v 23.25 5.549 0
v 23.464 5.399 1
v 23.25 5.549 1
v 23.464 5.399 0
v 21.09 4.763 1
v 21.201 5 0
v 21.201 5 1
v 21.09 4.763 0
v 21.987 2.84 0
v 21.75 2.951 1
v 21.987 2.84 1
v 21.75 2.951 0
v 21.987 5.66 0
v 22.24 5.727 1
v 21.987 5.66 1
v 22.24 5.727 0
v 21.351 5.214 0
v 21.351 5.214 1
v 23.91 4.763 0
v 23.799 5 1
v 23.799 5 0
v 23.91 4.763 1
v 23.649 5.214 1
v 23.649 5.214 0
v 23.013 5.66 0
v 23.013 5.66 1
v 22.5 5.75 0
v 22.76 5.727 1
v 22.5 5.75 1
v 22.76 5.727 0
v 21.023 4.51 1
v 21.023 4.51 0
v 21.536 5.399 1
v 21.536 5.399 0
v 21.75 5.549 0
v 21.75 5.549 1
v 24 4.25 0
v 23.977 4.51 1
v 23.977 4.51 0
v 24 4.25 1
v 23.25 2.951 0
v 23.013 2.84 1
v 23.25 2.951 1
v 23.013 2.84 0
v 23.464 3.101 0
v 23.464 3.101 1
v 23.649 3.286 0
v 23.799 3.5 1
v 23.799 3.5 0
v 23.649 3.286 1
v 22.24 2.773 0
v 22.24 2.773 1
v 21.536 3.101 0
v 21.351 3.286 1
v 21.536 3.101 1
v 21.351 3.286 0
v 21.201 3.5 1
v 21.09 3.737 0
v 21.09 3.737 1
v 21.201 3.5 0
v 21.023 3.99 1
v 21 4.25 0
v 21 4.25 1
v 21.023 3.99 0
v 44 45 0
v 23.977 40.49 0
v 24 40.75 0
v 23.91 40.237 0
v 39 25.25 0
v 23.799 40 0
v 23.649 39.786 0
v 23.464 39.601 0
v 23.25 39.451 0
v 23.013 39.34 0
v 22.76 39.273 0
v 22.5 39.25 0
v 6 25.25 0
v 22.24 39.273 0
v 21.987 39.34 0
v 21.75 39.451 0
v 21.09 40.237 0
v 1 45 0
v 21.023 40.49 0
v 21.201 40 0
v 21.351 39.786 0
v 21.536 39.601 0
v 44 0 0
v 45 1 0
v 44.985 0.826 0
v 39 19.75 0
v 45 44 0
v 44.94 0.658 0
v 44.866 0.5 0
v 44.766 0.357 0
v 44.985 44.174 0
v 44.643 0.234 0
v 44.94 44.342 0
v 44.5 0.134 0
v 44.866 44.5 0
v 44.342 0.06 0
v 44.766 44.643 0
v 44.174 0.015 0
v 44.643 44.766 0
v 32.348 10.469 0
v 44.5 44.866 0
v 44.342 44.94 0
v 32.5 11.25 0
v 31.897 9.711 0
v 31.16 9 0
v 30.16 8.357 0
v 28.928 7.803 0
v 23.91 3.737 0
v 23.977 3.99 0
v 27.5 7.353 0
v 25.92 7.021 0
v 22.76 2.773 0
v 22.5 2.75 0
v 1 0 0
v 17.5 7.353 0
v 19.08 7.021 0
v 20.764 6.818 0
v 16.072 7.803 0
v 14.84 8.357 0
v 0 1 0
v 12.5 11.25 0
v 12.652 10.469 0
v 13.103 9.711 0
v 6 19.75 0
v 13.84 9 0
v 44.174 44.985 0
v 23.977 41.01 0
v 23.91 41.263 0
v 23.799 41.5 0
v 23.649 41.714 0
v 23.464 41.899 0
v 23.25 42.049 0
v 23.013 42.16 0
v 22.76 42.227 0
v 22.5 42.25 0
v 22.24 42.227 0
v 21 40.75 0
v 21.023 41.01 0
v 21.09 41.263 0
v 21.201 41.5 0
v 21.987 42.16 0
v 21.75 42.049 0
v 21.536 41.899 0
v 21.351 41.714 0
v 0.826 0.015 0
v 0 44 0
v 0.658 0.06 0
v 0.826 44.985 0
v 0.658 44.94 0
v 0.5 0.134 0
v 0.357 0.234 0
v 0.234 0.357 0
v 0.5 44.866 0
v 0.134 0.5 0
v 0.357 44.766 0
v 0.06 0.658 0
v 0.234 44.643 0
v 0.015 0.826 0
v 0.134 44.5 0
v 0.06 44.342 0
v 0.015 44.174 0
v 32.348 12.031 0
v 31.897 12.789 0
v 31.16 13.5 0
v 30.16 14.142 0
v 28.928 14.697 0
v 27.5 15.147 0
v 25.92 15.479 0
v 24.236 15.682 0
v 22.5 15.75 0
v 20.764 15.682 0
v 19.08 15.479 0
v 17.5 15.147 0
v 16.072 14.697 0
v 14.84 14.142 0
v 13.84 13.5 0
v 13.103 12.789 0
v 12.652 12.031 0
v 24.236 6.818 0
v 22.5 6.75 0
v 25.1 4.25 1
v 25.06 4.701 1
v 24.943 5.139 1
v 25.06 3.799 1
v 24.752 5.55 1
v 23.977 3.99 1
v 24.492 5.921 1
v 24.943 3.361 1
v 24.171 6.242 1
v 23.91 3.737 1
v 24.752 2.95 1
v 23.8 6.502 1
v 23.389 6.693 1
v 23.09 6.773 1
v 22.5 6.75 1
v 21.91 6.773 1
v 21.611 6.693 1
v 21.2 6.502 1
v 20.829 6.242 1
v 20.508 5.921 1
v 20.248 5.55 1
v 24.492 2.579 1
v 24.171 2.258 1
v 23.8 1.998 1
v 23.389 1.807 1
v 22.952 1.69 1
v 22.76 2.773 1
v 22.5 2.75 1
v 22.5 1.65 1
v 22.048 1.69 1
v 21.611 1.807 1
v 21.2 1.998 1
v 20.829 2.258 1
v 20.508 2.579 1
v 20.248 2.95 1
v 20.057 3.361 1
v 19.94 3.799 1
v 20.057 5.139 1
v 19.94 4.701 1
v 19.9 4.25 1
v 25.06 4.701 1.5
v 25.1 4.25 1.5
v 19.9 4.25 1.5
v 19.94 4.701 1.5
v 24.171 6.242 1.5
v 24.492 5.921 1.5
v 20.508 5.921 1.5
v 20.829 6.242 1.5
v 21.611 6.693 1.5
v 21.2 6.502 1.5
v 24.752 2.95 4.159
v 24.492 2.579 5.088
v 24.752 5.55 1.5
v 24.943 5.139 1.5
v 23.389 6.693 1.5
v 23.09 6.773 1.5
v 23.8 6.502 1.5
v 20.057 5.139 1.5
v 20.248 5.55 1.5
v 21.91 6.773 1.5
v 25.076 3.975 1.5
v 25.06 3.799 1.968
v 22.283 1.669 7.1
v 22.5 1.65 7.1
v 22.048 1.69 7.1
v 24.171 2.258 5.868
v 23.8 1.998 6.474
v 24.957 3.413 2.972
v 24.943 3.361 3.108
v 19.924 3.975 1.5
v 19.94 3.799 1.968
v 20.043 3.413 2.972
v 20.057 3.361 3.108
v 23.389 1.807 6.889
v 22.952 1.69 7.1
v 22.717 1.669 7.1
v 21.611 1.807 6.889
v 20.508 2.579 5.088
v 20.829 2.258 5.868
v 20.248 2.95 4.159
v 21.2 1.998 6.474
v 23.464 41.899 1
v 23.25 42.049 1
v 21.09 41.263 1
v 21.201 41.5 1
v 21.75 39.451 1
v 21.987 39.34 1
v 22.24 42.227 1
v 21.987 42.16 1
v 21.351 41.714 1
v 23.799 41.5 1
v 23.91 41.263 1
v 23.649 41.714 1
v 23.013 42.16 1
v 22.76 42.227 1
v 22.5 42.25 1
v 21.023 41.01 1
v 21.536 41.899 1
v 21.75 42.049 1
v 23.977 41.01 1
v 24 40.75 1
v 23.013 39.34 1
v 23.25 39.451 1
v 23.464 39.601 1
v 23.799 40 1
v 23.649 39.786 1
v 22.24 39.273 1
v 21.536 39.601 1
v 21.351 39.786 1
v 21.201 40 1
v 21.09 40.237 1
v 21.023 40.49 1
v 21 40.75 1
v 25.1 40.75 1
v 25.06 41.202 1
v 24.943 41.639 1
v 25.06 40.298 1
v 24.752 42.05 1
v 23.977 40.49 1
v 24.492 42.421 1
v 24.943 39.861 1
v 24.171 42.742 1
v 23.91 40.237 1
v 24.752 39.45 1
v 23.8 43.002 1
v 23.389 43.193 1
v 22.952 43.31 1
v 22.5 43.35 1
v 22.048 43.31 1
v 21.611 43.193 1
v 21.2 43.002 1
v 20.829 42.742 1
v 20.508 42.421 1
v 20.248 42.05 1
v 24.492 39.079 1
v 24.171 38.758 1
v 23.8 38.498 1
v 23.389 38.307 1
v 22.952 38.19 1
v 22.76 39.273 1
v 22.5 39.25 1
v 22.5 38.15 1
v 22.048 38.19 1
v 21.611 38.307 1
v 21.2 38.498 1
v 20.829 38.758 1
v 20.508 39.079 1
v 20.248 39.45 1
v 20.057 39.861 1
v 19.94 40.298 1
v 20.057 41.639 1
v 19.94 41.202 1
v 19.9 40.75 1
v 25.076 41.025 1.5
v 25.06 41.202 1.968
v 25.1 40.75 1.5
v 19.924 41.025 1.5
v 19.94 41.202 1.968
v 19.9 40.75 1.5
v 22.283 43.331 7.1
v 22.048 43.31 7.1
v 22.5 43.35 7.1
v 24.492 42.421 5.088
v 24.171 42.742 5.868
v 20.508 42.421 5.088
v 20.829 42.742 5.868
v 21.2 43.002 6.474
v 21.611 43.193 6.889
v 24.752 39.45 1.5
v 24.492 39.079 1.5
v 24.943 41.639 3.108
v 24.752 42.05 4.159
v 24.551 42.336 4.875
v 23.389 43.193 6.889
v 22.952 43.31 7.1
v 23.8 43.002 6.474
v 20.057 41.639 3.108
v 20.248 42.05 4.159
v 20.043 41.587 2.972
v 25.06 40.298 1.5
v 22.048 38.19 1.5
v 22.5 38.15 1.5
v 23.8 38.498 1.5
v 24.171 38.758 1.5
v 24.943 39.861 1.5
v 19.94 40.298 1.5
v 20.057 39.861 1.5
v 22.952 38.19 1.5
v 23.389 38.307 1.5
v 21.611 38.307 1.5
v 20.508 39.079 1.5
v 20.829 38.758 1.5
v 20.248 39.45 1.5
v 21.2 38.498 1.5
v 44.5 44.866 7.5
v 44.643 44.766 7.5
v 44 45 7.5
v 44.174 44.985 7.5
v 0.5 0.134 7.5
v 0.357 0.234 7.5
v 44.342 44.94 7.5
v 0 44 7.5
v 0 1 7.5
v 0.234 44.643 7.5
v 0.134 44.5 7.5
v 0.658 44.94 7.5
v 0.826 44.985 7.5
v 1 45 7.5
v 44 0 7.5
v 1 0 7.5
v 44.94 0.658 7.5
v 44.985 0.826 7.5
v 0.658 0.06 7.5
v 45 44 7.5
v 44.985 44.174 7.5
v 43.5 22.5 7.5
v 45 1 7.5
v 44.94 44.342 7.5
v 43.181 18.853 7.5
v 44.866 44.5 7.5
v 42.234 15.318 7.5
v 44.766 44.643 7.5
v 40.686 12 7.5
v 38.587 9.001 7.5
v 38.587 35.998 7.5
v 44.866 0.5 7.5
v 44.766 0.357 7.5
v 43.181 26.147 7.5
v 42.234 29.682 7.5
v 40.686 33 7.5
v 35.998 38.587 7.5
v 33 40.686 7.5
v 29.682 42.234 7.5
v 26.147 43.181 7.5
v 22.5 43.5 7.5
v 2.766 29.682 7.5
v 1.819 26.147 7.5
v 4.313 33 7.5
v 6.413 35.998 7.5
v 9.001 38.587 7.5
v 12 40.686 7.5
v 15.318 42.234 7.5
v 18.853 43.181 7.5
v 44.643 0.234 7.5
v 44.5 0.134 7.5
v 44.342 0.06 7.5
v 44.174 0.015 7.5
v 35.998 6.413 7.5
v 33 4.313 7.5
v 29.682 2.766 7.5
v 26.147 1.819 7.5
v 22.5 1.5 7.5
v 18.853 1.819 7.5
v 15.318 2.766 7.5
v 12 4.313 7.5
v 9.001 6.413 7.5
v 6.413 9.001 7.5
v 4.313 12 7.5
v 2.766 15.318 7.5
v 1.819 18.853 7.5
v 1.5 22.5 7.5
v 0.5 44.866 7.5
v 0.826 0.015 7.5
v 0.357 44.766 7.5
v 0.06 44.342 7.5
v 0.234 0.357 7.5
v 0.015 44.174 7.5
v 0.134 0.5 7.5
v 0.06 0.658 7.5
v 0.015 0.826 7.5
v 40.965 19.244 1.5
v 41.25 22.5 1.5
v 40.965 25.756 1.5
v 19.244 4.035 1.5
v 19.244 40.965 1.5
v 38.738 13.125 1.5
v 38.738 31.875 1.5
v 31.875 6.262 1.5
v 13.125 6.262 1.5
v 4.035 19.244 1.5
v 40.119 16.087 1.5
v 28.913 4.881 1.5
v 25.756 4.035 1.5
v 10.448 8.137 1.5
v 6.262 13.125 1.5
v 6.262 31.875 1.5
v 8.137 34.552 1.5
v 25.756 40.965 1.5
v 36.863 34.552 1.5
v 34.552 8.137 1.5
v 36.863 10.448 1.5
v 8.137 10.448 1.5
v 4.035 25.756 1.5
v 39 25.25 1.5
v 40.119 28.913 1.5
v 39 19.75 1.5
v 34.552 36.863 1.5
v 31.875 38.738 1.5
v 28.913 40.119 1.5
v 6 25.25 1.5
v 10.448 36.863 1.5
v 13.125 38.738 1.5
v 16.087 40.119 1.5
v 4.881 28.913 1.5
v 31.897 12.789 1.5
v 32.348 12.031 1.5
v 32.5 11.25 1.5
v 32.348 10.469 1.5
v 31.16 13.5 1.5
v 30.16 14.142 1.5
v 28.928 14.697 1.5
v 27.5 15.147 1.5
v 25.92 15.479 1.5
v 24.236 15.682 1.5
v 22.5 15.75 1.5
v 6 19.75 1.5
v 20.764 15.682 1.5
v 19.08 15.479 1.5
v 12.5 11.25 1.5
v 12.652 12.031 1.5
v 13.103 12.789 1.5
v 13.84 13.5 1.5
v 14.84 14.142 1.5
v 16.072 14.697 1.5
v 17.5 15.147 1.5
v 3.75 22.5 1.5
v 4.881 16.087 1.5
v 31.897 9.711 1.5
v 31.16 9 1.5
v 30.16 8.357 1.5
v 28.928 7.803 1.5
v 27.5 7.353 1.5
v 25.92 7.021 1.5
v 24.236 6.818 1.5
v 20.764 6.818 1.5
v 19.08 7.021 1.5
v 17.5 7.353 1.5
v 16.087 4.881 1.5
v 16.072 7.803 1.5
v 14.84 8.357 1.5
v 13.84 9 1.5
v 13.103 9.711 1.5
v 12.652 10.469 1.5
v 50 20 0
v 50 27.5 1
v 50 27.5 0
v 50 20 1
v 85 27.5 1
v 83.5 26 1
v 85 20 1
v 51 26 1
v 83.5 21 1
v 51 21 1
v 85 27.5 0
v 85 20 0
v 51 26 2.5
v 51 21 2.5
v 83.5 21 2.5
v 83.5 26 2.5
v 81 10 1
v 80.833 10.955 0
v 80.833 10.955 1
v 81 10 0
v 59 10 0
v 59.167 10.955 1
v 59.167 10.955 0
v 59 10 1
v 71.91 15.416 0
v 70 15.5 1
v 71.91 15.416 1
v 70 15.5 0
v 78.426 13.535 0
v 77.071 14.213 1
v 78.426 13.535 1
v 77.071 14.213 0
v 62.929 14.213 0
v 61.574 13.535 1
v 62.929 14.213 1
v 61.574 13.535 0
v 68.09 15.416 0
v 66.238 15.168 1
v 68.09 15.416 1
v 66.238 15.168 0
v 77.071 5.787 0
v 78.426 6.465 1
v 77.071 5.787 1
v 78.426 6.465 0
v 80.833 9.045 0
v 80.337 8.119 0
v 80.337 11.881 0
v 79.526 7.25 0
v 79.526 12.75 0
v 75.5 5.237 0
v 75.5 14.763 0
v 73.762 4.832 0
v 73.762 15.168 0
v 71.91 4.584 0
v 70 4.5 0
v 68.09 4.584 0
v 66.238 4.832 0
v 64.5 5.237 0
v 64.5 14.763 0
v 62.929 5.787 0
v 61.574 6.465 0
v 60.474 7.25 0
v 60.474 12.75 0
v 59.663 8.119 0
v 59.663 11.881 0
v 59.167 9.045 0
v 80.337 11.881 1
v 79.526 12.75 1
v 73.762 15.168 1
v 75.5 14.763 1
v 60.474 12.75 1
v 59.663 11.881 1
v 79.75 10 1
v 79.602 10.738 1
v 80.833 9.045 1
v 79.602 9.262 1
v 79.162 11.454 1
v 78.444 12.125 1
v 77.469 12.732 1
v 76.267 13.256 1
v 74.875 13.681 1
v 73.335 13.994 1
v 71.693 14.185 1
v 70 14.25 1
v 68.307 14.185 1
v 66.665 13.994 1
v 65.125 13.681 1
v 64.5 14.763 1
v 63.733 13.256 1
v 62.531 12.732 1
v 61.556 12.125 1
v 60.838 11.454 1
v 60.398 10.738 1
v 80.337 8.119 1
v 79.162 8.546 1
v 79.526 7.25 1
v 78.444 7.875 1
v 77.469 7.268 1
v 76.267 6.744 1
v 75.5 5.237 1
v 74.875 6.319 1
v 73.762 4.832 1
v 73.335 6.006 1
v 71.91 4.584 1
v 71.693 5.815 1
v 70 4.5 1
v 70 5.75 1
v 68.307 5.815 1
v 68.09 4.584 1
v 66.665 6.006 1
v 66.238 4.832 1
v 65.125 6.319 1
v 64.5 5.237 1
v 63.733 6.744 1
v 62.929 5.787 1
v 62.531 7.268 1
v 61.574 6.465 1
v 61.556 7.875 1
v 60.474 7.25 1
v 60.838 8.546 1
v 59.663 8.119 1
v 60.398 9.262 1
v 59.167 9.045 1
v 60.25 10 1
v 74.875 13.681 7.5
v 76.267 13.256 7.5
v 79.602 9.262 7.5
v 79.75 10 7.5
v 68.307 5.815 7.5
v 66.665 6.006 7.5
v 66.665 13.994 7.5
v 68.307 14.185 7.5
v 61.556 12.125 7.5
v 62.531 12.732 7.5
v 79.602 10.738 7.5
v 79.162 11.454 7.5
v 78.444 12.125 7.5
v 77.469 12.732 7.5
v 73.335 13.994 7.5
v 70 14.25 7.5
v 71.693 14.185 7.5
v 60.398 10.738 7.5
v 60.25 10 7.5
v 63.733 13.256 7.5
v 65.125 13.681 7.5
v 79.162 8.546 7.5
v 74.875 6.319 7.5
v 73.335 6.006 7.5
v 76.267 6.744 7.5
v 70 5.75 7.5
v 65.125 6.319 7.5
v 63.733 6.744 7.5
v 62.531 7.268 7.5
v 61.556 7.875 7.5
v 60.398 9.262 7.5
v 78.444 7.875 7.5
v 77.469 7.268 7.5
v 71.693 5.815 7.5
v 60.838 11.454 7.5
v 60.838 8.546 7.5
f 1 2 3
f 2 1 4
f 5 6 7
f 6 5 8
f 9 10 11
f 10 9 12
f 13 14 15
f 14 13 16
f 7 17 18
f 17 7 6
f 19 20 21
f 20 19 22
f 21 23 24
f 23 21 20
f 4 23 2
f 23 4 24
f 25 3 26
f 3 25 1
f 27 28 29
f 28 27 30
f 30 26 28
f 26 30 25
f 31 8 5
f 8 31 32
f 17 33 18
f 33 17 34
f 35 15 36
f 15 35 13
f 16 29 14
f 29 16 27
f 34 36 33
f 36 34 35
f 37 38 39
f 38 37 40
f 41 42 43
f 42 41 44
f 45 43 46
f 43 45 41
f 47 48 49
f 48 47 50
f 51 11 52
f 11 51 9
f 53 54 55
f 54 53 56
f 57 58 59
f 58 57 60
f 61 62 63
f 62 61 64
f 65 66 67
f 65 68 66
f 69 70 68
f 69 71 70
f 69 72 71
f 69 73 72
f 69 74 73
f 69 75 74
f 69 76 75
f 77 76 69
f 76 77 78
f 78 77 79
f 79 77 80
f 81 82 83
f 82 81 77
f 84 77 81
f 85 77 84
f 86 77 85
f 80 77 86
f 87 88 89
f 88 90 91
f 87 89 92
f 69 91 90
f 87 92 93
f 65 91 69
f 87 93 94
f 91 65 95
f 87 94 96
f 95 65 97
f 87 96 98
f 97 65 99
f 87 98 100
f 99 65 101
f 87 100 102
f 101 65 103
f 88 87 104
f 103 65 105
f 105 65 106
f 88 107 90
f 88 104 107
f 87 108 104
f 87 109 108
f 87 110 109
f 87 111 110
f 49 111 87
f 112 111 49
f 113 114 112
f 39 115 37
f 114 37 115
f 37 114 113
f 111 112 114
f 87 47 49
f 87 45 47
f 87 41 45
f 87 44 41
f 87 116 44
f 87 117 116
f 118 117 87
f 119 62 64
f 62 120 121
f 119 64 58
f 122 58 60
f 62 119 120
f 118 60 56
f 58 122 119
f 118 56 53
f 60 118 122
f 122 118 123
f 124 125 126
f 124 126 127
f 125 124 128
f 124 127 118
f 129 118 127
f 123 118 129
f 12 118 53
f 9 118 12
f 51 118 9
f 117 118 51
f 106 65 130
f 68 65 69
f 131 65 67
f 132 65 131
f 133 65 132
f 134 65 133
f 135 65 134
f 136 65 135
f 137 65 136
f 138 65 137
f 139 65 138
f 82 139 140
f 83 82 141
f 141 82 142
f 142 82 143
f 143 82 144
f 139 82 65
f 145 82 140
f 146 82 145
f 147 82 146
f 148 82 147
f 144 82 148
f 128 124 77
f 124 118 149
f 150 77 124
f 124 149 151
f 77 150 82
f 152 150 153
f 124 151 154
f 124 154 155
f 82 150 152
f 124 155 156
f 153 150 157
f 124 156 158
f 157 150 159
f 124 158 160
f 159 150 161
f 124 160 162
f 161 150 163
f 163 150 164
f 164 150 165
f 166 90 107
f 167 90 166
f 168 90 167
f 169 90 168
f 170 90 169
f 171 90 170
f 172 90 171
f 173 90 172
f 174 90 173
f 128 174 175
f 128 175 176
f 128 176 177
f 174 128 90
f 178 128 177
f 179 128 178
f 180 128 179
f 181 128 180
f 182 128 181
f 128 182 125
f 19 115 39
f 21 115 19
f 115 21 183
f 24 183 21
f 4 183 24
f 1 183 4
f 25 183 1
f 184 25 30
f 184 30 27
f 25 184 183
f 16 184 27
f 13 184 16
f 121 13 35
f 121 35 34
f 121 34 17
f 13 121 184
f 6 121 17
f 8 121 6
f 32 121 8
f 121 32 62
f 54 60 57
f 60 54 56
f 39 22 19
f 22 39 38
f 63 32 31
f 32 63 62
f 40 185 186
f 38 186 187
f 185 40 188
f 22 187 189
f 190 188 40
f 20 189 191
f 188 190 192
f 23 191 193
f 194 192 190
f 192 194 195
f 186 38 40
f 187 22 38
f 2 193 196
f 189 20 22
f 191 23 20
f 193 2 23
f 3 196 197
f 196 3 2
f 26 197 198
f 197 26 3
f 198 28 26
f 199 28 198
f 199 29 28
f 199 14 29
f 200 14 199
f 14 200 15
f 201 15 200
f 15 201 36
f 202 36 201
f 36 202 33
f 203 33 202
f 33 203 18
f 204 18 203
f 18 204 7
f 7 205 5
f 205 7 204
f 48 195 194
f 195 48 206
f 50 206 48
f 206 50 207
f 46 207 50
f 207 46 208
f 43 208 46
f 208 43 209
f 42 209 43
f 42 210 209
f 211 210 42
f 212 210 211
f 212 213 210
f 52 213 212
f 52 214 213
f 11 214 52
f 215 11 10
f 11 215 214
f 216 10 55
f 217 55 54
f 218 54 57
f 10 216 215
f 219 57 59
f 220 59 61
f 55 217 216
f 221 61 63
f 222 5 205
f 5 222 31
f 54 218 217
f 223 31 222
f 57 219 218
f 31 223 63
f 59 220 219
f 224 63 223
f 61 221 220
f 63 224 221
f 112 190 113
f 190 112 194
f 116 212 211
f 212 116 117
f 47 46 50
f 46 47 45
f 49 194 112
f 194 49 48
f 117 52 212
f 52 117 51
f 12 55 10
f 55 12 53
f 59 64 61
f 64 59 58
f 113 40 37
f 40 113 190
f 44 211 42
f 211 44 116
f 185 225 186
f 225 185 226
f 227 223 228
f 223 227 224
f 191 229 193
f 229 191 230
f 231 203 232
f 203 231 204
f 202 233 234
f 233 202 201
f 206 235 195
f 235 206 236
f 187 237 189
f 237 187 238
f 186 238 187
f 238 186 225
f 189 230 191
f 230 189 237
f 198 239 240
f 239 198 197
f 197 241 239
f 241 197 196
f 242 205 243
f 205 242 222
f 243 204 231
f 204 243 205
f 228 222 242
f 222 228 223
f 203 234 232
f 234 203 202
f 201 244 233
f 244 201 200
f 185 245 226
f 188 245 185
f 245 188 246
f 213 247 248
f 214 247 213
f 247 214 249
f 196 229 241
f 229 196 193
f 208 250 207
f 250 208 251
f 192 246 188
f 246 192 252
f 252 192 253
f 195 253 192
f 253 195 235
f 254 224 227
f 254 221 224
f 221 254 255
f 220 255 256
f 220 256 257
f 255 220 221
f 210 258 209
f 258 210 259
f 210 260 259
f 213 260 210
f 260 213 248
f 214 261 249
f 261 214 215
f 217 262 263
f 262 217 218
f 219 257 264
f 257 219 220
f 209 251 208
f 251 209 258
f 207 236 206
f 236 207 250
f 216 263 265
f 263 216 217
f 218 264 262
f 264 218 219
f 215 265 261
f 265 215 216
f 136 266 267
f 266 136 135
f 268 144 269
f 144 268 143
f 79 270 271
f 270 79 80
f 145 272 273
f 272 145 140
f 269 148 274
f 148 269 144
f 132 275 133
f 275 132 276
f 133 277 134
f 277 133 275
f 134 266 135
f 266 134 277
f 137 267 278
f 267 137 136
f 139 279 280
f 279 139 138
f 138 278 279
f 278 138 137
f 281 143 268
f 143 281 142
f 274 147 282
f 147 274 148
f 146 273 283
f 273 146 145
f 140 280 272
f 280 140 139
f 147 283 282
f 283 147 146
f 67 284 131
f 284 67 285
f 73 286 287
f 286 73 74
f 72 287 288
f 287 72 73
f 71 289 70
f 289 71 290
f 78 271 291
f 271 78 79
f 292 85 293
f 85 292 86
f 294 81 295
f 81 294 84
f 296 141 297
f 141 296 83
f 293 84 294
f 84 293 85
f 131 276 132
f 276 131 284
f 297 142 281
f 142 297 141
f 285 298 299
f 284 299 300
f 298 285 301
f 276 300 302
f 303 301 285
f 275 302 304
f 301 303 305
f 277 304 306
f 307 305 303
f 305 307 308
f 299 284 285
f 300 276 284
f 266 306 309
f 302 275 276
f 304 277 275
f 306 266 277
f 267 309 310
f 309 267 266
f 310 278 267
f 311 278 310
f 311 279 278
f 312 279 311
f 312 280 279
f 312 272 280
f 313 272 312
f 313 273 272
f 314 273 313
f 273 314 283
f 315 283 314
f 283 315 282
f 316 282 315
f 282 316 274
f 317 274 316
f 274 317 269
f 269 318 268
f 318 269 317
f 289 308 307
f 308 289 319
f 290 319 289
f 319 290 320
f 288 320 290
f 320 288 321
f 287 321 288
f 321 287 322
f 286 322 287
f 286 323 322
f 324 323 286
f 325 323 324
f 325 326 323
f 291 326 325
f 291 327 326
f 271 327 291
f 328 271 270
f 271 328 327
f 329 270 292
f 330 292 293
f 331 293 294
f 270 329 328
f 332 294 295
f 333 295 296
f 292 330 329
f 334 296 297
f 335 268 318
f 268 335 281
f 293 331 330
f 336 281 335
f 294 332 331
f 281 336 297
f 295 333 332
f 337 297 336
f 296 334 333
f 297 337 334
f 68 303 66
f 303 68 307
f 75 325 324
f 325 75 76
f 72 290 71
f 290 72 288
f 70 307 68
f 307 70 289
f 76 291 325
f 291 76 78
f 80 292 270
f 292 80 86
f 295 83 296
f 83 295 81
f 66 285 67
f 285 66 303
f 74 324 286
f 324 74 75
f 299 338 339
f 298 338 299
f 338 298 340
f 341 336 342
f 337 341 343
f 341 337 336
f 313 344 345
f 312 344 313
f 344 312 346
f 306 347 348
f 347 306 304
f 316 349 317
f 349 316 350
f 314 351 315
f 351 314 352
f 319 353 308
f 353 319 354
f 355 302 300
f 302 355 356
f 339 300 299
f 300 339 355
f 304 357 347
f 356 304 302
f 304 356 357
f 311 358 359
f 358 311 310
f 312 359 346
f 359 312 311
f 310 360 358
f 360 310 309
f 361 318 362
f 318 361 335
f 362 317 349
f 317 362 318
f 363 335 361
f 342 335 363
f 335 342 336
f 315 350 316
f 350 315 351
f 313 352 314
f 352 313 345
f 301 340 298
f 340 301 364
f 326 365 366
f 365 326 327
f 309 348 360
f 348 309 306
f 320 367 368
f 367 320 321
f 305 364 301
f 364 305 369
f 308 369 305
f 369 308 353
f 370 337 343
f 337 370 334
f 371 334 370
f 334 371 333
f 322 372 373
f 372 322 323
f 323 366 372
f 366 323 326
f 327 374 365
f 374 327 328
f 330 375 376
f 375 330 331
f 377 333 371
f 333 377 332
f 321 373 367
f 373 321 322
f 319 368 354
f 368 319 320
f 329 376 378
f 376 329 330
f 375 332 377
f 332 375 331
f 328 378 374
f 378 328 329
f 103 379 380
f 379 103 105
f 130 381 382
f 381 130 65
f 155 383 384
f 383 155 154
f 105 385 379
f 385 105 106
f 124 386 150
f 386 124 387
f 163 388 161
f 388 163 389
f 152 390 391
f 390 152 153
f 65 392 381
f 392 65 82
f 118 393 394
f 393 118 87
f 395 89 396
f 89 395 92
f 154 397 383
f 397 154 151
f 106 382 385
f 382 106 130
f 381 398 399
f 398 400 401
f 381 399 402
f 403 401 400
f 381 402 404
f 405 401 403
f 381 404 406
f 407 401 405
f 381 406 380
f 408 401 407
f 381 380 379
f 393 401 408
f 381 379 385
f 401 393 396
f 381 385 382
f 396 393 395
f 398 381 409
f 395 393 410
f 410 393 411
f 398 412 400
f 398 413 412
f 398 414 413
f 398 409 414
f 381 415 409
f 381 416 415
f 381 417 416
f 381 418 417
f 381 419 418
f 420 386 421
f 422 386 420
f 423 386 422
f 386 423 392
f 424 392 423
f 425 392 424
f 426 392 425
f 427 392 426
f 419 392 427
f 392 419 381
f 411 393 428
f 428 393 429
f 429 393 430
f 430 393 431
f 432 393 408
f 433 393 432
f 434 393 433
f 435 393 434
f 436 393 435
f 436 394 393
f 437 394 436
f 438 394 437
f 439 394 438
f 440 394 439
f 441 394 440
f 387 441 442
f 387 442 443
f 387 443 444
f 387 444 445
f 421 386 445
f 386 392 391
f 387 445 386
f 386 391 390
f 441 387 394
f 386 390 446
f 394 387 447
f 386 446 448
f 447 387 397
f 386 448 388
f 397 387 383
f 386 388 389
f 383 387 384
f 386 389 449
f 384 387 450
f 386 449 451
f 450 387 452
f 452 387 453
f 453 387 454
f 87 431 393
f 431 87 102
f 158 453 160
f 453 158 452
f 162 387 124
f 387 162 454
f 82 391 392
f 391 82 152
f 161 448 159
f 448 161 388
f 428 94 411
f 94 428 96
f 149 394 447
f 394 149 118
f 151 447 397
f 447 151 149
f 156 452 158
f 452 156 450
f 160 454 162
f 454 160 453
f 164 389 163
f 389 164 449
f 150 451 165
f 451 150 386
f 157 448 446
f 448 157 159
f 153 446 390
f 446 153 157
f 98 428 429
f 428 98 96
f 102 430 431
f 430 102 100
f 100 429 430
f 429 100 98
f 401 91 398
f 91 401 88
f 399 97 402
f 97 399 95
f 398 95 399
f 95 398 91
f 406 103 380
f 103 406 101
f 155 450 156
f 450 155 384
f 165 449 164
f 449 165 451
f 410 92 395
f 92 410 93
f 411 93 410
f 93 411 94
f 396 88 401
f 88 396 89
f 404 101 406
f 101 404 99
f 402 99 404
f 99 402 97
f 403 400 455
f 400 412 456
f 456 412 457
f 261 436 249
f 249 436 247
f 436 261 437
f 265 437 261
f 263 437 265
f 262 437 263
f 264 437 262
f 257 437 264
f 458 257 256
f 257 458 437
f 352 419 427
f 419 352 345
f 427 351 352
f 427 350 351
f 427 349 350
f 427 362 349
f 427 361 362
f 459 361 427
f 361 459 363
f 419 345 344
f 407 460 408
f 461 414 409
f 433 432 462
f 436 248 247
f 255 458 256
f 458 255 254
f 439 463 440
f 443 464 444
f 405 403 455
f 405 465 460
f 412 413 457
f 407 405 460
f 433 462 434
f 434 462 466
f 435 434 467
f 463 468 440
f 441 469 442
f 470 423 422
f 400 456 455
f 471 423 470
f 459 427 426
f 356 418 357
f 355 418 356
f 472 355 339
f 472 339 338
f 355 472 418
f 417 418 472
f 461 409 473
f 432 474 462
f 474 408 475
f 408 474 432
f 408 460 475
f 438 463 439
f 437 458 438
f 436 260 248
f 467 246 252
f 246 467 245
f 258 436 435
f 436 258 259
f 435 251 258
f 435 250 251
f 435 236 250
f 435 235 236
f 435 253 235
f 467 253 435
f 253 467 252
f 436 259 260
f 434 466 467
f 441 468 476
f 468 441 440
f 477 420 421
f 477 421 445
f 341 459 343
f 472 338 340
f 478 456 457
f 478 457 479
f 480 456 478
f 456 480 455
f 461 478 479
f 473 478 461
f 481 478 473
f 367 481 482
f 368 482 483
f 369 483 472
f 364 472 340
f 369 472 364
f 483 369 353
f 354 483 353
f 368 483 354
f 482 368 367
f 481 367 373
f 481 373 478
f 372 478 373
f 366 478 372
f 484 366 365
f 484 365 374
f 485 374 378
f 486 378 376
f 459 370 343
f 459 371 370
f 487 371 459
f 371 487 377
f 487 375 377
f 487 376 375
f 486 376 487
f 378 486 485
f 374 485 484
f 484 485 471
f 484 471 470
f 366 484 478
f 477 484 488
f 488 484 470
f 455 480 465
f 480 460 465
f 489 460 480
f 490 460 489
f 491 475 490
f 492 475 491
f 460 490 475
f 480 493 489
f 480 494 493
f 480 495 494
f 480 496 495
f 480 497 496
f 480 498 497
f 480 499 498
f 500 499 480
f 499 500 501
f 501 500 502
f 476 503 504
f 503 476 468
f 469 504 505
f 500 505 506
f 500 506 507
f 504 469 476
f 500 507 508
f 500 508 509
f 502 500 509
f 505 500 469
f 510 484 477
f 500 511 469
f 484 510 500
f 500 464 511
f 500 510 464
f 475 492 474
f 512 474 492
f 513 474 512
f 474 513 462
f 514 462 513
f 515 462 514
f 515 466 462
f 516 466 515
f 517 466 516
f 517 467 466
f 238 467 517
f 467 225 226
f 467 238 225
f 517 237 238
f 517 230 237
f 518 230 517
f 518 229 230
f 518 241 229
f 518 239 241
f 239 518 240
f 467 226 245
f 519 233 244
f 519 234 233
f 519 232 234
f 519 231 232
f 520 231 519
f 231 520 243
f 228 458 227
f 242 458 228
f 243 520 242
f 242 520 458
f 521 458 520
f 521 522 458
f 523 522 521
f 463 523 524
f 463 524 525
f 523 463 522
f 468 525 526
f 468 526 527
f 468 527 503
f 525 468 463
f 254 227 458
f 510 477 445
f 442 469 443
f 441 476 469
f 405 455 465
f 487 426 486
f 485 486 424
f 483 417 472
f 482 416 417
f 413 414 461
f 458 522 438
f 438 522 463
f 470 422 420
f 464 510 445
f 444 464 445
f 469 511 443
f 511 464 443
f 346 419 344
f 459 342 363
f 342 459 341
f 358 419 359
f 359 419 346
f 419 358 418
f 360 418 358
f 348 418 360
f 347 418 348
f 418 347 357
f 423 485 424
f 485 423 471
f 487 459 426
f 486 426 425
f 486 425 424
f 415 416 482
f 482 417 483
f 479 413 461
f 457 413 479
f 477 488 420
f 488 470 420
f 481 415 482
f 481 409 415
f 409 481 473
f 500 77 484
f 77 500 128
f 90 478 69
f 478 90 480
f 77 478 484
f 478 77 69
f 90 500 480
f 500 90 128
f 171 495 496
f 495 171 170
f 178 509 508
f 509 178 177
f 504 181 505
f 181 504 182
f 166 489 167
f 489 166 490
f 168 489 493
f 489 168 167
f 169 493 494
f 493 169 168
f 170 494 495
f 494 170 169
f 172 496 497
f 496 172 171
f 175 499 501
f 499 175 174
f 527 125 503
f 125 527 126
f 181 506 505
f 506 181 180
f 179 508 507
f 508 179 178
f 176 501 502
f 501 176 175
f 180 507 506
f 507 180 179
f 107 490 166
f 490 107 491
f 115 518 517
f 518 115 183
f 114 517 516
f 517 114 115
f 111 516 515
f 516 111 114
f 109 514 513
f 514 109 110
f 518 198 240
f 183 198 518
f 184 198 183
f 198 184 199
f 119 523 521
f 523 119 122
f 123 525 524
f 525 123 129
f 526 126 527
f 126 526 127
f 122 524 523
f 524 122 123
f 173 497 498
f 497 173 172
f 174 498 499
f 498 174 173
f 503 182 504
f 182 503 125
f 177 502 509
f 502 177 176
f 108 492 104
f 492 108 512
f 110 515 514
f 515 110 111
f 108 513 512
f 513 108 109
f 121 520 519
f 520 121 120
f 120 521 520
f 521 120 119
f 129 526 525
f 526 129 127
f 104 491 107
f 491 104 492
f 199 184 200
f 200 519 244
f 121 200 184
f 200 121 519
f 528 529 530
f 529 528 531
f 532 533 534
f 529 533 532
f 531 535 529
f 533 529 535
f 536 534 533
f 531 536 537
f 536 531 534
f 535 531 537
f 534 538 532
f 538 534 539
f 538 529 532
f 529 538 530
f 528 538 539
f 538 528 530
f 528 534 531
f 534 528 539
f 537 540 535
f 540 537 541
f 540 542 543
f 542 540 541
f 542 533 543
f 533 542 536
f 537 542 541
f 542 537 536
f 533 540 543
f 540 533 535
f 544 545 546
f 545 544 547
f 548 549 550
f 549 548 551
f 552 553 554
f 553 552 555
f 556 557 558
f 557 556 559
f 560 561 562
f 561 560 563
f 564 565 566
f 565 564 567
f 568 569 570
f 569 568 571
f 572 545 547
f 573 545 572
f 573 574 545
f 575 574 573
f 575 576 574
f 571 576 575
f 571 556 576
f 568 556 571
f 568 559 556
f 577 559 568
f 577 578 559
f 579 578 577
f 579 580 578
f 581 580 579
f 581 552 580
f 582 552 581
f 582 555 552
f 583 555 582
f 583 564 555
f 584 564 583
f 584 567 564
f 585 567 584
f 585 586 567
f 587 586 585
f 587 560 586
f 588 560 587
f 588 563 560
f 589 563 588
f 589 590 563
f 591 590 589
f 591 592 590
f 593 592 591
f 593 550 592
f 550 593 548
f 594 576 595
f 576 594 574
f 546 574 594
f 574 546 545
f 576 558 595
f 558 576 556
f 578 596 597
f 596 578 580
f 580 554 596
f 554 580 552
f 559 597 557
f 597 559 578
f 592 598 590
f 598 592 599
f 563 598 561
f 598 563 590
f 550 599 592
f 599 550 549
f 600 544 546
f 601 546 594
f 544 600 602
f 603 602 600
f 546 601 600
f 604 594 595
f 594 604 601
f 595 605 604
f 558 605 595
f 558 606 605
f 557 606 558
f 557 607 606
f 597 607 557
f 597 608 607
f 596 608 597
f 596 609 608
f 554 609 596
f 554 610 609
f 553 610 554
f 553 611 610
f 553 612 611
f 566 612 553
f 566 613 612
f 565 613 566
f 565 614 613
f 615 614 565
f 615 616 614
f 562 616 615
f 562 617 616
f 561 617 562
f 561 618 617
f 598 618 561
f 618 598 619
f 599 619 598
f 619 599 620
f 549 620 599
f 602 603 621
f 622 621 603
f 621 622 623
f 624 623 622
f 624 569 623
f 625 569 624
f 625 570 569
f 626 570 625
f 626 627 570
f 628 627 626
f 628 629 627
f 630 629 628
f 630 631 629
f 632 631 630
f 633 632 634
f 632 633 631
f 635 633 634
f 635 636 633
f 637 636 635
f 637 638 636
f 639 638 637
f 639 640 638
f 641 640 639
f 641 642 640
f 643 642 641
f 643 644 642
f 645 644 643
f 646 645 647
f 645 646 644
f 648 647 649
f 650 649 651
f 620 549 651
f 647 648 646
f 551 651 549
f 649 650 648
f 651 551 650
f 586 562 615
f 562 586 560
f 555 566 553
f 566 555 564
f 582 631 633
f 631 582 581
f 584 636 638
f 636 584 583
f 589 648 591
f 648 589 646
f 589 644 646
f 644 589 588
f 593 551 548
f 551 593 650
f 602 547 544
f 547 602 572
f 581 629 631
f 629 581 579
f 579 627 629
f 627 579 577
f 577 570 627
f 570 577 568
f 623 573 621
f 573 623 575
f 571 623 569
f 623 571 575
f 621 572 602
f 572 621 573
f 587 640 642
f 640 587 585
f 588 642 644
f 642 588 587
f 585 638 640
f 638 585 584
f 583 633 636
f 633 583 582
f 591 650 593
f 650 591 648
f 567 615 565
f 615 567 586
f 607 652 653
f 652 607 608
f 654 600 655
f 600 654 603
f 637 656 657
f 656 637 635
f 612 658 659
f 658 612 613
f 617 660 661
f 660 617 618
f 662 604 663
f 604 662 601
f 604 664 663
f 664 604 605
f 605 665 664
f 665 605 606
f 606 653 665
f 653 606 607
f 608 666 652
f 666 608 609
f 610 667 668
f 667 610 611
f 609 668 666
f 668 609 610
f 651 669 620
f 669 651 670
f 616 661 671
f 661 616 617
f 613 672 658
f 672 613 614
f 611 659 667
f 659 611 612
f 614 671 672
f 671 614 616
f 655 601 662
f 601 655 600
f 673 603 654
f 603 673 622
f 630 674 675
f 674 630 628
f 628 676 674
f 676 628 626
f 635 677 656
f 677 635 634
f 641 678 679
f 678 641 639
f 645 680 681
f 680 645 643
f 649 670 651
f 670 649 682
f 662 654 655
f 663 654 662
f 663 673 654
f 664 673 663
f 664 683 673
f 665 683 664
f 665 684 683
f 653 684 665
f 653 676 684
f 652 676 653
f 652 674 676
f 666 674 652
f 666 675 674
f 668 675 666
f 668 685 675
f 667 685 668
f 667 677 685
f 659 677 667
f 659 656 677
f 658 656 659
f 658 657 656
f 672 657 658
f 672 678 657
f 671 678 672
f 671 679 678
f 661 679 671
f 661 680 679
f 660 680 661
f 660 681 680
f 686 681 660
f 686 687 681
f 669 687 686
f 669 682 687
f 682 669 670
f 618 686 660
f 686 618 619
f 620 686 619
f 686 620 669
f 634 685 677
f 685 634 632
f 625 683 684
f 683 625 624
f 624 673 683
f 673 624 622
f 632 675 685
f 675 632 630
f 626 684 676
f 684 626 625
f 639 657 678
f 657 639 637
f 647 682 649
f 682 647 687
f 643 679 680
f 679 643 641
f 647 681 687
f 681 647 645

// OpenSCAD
box_size = [45, 45, 7.5];
led_size = [33, 5.5];
button_size = [20, 9];
wall_width = 1.5;
$fn = 36;


module screw_hole()
{
  cylinder(h = 1, r = 1.5);
  translate([0, 0, 1]) cylinder(h = box_size[2] - 1, r = 2.6);
}

module main()
{
  difference()
  {
    minkowski()
    {
      rad = 1;
      translate([rad, rad, 0]) cube([box_size[0] - (rad * 2), box_size[1] - (rad * 2), box_size[2] / 2]);
      cylinder(h = box_size[2] / 2, r = rad);
    }
    /* Concave */
    translate([box_size[0] / 2, box_size[1] / 2, wall_width]) cylinder(h = box_size[2] - wall_width, r1 = 18.75, r2 = 21);
  
    /* Screw holes */
    translate([box_size[0] / 2, 4.25 ,0]) screw_hole();
    translate([box_size[0] / 2, box_size[1] - 4.25 ,0]) screw_hole();
  
    /* LEDs cut-out */
    translate([(box_size[0] / 2) - (led_size[0] / 2), (box_size[1] / 2) - (led_size[1] / 2), 0]) cube([led_size[0], led_size[1], wall_width]);
  
    /* Button cut-out */
    translate([(box_size[0] / 2), 11.25, wall_width / 2]) scale([button_size[0], button_size[1], wall_width]) cylinder(h = 1, r = 0.5, center = true);
  }
}

module diffuser()
{
  cube([led_size[0] + 2, led_size[1] + 2, 1]);
  translate([1, 1, 1]) cube([led_size[0] - 0.5, led_size[1] - 0.5, wall_width]);
}

module button()
{
  scale([button_size[0] + 2, button_size[1] + 2, 1]) cylinder(h = 1, r = 0.5);
  translate([0, 0, 1]) scale([button_size[0] - 0.5, button_size[1] - 0.5, wall_width + 5]) cylinder(h = 1, r = 0.5);
}

main();
translate([50, 20, 0]) diffuser();
translate([70, 10, 0]) button();
